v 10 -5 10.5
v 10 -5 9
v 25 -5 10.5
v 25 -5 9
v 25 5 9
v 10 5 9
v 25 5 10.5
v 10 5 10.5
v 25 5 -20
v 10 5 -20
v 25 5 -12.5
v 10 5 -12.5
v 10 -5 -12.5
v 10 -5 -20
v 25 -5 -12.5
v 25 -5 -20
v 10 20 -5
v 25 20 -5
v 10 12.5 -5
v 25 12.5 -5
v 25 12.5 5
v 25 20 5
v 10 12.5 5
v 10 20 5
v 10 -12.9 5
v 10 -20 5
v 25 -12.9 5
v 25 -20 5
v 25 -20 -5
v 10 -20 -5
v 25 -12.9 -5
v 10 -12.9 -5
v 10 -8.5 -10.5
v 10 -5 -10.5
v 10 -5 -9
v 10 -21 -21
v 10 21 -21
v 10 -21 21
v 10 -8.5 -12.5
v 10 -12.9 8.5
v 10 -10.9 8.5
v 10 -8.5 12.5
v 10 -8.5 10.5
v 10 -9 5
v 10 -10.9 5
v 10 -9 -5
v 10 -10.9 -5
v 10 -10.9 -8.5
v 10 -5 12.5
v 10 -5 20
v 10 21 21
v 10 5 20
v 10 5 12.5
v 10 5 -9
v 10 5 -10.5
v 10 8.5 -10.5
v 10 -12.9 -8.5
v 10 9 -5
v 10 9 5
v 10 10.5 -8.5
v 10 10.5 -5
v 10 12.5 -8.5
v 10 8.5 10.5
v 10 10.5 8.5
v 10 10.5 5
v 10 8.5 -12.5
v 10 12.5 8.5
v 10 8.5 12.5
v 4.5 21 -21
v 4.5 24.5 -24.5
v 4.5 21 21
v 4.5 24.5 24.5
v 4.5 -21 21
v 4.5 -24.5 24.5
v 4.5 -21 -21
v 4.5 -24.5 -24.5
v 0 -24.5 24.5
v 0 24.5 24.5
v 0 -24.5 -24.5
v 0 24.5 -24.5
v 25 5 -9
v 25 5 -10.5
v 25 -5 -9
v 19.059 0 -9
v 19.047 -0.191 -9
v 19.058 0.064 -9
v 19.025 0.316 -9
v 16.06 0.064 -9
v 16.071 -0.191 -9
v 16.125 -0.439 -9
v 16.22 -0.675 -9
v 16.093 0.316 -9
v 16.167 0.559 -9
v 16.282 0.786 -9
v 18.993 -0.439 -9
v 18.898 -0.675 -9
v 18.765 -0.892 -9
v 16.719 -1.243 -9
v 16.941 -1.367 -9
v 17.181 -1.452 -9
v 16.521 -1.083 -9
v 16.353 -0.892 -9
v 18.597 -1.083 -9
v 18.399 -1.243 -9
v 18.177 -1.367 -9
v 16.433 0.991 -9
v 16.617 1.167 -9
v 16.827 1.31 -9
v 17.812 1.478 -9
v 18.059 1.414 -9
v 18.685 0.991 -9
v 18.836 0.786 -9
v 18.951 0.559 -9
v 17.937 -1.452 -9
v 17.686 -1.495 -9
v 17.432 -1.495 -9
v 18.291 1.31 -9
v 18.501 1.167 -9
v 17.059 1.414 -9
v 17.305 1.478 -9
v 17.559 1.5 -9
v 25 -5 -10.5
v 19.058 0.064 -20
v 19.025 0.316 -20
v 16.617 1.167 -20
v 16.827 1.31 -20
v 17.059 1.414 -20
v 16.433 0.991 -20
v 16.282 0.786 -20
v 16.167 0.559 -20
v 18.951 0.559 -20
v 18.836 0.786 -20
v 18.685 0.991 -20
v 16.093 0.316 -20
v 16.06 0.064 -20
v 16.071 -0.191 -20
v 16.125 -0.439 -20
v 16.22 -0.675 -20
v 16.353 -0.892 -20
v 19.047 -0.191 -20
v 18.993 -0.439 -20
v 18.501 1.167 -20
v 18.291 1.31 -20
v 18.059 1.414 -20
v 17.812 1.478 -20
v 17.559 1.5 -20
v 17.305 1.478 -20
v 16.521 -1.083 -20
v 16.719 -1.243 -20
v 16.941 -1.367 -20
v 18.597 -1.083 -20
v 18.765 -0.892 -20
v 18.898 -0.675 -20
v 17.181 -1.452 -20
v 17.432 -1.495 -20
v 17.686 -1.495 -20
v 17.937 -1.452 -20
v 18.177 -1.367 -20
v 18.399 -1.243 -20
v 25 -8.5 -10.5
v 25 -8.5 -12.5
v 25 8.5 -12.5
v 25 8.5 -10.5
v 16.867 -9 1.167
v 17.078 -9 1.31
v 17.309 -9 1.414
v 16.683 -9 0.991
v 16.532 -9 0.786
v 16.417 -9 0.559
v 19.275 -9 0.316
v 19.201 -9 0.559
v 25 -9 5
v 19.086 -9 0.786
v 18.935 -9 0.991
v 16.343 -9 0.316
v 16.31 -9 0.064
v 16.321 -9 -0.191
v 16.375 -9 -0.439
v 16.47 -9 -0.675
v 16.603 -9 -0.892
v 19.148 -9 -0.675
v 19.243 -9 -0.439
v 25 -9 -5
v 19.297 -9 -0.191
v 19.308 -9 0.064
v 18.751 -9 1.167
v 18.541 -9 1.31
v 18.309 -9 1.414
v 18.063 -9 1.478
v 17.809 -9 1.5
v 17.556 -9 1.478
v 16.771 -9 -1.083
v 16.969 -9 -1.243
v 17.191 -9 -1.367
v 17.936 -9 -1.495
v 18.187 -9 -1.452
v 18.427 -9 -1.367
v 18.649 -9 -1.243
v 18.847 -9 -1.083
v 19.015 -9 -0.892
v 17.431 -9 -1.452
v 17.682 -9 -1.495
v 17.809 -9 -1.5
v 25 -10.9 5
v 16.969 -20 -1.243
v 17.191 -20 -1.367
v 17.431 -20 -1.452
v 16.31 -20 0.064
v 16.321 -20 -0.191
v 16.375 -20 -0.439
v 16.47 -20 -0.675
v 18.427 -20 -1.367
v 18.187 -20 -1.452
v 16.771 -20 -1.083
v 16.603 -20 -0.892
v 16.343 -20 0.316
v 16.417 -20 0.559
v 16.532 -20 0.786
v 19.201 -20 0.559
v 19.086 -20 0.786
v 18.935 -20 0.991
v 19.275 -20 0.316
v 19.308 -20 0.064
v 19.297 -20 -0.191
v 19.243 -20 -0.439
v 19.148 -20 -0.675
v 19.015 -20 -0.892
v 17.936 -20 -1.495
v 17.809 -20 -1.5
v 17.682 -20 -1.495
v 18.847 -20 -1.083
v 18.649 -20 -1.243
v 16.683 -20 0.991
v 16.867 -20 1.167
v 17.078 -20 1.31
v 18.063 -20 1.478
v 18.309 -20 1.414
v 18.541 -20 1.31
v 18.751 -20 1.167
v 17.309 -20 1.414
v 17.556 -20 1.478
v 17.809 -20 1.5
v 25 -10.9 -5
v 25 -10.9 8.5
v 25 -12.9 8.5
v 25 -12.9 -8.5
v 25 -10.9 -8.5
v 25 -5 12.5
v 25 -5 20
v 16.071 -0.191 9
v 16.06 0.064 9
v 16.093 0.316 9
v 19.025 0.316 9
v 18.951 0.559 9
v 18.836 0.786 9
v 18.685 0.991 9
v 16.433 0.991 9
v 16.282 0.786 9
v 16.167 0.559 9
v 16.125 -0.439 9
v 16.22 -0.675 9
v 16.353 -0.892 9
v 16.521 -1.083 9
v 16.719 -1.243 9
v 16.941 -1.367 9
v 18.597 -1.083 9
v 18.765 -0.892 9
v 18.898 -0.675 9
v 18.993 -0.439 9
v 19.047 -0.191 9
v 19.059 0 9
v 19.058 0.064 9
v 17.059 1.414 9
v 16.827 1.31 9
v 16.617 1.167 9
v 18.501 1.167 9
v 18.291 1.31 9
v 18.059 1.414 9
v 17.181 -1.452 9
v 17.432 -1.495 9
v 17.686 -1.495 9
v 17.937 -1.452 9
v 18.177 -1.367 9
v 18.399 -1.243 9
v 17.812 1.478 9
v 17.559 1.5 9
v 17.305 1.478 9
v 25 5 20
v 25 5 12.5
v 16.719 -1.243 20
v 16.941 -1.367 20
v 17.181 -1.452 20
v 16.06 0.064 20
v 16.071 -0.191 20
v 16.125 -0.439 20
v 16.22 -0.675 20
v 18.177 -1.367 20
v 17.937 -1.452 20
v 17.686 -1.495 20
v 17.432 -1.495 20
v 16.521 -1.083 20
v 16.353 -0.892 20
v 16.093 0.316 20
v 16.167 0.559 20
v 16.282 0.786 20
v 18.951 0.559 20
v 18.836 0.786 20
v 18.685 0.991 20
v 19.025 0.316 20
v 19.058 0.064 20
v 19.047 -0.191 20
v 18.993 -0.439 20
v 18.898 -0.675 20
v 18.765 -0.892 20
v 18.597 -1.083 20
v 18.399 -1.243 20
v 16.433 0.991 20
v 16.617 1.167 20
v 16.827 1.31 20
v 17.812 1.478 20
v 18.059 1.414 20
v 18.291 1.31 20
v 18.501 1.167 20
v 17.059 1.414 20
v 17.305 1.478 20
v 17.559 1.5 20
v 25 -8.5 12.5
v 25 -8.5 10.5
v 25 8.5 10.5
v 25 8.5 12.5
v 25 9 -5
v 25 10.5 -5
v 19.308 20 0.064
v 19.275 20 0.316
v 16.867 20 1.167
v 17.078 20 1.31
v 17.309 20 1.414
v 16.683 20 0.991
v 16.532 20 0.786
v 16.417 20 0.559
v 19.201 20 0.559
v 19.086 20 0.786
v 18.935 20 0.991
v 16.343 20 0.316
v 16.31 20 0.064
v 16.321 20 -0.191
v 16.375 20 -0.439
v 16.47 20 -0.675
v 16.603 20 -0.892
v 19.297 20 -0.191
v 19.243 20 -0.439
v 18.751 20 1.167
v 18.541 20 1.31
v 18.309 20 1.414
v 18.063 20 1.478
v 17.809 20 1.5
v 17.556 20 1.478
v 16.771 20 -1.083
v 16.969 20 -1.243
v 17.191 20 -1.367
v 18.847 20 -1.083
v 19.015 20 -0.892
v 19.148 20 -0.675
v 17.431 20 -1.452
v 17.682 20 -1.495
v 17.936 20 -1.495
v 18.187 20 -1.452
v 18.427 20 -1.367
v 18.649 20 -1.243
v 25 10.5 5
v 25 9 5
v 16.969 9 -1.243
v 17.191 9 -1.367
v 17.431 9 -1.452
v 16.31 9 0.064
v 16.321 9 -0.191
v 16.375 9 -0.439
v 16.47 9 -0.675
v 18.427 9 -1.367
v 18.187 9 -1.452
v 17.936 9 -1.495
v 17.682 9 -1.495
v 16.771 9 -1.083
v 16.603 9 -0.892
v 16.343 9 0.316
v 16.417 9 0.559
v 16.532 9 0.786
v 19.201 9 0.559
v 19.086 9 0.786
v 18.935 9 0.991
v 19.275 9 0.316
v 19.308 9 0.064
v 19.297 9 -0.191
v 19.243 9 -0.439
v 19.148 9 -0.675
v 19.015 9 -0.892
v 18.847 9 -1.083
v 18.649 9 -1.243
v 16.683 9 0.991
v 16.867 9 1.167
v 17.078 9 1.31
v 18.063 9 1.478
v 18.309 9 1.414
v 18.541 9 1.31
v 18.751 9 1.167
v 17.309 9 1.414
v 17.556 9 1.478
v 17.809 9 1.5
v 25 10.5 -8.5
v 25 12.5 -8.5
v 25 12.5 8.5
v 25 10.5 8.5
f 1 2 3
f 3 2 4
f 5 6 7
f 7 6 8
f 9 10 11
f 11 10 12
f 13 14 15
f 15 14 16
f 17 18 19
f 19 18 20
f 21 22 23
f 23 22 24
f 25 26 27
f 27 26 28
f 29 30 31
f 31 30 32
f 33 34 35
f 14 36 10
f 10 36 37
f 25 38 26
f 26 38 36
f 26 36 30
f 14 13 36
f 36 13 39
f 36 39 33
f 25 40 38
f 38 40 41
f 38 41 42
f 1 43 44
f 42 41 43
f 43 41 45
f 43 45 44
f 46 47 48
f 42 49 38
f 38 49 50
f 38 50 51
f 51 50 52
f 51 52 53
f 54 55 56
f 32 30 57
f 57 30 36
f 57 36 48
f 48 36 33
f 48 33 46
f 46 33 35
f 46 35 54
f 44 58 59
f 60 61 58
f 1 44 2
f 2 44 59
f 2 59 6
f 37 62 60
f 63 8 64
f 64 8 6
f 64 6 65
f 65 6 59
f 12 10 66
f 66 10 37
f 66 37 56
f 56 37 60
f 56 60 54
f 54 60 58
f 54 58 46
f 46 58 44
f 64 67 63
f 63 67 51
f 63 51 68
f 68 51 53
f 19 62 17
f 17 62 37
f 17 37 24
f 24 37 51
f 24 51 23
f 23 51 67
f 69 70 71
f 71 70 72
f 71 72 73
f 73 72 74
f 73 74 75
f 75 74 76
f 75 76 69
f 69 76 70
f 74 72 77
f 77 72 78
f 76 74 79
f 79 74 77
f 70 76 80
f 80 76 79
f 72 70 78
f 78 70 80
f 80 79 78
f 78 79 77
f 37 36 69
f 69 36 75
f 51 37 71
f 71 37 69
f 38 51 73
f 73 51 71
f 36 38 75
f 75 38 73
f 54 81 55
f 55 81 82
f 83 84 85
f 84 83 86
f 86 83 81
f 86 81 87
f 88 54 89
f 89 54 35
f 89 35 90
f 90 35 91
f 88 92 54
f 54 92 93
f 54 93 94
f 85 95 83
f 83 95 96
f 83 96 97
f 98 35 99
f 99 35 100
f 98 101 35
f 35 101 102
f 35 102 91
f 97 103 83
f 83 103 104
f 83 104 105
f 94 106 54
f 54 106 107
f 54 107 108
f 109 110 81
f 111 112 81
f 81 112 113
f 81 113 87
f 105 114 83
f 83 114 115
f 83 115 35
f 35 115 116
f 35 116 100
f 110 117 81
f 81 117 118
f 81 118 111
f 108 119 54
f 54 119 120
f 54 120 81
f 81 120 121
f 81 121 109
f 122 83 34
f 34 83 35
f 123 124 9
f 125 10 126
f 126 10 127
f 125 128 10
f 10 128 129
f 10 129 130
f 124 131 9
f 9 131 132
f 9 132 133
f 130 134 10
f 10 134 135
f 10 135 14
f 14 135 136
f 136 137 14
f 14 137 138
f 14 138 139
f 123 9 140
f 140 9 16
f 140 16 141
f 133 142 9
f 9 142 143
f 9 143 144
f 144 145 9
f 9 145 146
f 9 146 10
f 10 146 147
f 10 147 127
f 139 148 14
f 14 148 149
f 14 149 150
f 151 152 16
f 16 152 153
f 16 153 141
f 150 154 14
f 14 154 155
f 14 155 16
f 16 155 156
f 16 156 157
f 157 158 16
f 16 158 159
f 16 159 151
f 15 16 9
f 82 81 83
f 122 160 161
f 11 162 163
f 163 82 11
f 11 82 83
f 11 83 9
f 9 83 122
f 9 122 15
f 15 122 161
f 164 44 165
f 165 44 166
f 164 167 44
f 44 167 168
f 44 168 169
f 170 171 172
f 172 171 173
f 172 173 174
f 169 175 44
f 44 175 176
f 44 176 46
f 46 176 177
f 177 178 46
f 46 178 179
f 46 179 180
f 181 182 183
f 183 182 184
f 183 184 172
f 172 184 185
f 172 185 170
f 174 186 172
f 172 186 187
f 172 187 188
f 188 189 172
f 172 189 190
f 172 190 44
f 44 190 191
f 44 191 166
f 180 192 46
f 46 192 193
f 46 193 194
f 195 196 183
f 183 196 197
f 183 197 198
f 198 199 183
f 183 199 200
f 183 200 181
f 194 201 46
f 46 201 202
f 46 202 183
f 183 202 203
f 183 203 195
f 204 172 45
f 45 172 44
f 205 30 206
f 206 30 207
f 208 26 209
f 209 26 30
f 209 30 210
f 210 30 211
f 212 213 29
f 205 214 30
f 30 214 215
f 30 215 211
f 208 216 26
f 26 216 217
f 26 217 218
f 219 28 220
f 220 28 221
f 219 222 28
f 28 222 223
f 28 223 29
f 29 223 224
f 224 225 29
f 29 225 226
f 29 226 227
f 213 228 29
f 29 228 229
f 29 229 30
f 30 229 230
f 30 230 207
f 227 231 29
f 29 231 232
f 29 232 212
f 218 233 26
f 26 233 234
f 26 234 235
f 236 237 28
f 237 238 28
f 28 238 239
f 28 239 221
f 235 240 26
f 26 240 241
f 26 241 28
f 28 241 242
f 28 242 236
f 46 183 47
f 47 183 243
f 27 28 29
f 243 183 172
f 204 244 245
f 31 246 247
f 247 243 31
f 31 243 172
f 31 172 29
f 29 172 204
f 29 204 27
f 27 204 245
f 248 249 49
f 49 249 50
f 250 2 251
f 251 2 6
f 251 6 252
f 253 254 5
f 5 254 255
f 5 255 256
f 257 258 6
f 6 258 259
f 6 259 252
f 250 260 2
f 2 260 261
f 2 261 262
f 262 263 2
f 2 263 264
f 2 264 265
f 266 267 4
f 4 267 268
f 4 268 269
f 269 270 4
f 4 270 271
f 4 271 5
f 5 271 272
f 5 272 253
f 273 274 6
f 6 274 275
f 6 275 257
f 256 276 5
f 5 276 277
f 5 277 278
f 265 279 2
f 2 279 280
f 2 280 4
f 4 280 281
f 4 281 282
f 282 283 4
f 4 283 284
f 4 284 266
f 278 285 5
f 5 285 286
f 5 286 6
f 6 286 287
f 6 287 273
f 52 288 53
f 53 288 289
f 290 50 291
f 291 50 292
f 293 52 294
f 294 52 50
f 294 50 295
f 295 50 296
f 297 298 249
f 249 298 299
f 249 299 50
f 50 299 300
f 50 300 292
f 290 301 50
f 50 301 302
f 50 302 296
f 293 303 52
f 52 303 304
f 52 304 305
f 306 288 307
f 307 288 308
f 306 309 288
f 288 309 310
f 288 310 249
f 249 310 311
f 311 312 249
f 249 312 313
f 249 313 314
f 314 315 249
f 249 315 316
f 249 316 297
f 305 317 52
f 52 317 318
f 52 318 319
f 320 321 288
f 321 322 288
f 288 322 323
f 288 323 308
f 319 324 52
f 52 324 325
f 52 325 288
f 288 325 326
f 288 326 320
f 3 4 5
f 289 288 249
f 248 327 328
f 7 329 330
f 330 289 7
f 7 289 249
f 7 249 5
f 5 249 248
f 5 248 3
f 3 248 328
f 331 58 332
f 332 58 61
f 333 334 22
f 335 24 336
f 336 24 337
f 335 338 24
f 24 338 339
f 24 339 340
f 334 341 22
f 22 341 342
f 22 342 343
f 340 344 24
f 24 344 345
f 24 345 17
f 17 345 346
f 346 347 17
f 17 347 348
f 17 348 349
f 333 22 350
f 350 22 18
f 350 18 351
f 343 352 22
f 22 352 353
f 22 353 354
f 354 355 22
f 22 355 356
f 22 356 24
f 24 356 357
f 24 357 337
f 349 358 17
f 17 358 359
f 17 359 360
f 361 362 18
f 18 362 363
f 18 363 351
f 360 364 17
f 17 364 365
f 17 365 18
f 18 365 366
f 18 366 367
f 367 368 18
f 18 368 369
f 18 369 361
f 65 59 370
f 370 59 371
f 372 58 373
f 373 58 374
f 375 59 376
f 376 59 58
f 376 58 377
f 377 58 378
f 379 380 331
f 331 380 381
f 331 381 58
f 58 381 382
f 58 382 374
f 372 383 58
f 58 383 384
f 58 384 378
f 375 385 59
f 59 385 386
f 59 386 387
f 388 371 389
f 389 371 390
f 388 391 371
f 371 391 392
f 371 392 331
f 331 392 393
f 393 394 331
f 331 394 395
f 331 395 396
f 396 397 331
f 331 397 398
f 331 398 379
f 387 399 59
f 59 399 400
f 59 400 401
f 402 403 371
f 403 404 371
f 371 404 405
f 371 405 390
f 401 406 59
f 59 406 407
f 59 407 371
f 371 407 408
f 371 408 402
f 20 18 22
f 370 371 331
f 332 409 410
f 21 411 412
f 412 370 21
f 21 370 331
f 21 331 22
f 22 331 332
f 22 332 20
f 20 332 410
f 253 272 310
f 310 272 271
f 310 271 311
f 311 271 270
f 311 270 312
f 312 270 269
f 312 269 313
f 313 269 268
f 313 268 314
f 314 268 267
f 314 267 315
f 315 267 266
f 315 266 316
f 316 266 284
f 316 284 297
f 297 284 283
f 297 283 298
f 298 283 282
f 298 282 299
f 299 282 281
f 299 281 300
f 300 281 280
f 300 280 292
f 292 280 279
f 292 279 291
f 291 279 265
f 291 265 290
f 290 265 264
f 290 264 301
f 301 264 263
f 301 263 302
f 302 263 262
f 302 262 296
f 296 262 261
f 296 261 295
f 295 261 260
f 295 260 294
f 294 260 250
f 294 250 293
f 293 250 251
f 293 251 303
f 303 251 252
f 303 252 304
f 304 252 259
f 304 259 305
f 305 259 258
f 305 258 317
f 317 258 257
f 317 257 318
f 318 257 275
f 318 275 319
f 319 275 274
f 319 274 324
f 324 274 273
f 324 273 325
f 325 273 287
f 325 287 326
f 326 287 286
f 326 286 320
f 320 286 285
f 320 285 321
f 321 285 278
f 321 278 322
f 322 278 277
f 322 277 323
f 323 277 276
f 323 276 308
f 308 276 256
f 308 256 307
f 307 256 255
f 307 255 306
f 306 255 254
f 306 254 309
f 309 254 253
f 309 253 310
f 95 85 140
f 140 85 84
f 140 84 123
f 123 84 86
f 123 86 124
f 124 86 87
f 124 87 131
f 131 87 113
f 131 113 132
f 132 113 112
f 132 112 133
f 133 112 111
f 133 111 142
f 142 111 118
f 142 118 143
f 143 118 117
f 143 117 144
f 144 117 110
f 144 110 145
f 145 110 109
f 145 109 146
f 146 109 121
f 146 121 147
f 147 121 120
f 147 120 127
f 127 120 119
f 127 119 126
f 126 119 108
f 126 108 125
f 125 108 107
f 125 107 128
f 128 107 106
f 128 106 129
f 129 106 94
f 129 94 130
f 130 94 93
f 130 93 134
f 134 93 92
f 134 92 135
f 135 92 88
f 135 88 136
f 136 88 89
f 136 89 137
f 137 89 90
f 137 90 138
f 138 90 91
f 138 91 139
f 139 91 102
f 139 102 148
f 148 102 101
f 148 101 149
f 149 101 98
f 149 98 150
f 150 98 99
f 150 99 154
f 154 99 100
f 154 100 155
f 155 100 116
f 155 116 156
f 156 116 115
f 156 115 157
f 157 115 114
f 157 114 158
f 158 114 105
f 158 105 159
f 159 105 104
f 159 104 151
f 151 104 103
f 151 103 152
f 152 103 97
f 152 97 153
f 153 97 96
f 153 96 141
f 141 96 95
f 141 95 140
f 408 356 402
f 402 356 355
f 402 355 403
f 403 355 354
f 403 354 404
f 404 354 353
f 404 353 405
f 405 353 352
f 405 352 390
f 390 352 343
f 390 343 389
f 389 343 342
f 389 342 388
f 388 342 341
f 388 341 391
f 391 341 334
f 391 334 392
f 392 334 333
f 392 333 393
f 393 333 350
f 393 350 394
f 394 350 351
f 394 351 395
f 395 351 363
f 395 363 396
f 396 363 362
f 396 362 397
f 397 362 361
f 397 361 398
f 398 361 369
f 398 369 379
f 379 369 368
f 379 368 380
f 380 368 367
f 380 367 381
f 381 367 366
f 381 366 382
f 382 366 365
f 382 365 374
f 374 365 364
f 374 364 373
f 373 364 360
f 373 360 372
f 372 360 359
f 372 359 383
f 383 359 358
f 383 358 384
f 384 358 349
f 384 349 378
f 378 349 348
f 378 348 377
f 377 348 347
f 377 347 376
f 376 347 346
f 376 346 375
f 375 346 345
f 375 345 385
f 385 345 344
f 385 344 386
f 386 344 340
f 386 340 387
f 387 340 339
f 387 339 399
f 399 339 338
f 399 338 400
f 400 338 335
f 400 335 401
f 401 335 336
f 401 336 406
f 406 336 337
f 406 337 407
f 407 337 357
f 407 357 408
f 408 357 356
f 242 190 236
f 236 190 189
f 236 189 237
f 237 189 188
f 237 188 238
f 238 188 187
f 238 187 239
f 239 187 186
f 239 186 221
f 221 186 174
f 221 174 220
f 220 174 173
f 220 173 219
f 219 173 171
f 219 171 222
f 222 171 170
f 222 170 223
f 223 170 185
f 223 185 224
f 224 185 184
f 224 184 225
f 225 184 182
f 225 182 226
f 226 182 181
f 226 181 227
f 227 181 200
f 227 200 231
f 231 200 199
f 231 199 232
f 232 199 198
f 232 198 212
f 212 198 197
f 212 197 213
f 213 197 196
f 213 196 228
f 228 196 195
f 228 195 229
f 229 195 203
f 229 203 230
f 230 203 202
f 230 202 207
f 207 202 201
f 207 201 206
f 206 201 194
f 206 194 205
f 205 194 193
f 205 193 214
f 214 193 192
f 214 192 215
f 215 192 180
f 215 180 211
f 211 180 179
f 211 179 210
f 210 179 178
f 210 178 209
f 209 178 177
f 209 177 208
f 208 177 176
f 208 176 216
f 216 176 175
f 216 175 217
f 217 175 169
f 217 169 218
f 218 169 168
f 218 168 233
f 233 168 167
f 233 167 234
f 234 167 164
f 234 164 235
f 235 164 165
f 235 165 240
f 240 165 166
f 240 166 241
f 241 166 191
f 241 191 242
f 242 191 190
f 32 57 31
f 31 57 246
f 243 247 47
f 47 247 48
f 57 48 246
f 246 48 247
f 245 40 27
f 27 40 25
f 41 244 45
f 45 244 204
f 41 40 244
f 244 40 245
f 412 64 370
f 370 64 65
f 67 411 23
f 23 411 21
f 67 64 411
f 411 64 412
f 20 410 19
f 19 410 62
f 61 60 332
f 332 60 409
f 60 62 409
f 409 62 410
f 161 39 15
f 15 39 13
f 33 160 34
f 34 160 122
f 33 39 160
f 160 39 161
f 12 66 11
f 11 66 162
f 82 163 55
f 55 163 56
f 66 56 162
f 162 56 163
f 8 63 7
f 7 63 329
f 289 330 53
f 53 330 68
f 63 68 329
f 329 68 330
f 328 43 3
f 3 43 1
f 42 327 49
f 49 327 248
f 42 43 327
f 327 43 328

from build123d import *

# Parameters (mm, degrees)
SKETCH1_W                 = 49
SKETCH1_H                 = 49
BOSS_EXTRUDE1_DEPTH       = 4.5
SKETCH3_W                 = 42
SKETCH3_H                 = 42
BOSS_EXTRUDE3_DEPTH       = 5.5
SKETCH4_W                 = 11
SKETCH4_H                 = 10
SKETCH4_W_2               = 10
SKETCH4_H_2               = 11
BOSS_EXTRUDE5_DEPTH       = 15
F_3_0MM_DOWEL_SLOT1_D     = 3
F_3_0MM_DOWEL_SLOT2_D     = 3
SKETCH15_W                = 15
SKETCH15_H                = 2
BOSS_EXTRUDE7_DEPTH       = 3.5
BOSS_EXTRUDE7_DEPTH_BACK  = 13.5
F_3_0MM_DOWEL_SLOT3_D     = 3
SKETCH18_W                = 15
SKETCH18_H                = 2
BOSS_EXTRUDE8_DEPTH       = 3.5
BOSS_EXTRUDE8_DEPTH_BACK  = 13.5
F_3_0MM_DOWEL_SLOT5_D     = 3
SKETCH23_W                = 15
SKETCH23_H                = 2
BOSS_EXTRUDE9_DEPTH       = 3.5
BOSS_EXTRUDE9_DEPTH_BACK  = 13.5
SKETCH24_W                = 15
SKETCH24_H                = 2
BOSS_EXTRUDE10_DEPTH      = 3.5
BOSS_EXTRUDE10_DEPTH_BACK = 13.5
F_3_0MM_DOWEL_SLOT6_D     = 3


with BuildPart() as part:
    # Sketch1 → Boss-Extrude1 (new body)
    with BuildSketch(Plane(origin=(0, 0, 0), x_dir=(0, 0, -1), z_dir=(1, 0, 0))):
        Rectangle(SKETCH1_W, SKETCH1_H)
    extrude(amount=BOSS_EXTRUDE1_DEPTH)

    # Sketch3 → Boss-Extrude3 (add)
    with BuildSketch(Plane(origin=(4.5, 0, 0), x_dir=(0, 0, -1), z_dir=(1, 0, 0))):
        Rectangle(SKETCH3_W, SKETCH3_H)
    extrude(amount=BOSS_EXTRUDE3_DEPTH)

    # Sketch4 → Boss-Extrude5 (add)
    with BuildSketch(Plane(origin=(10, 0, 0), x_dir=(0, 0, -1), z_dir=(1, 0, 0))):
        with Locations((14.5, 0)):
            Rectangle(SKETCH4_W, SKETCH4_H)
        with Locations((0, -14.5)):
            Rectangle(SKETCH4_W_2, SKETCH4_H_2)
        with Locations((-14.5, 0)):
            Rectangle(SKETCH4_W, SKETCH4_H)
        with Locations((0, 14.5)):
            Rectangle(SKETCH4_W_2, SKETCH4_H_2)
    extrude(amount=BOSS_EXTRUDE5_DEPTH)

    # Ø3.0mm Dowel Slot1 (through all)
    with Locations(Plane(origin=(0, 0, -20), x_dir=(-1, 0, 0), z_dir=(0, 0, -1))):
        with Locations((-17.558984138, 0)):
            Hole(F_3_0MM_DOWEL_SLOT1_D / 2)

    # Ø3.0mm Dowel Slot2 (through all)
    with Locations(Plane(origin=(0, 20, 0), x_dir=(1, 0, 0), z_dir=(0, 1, 0))):
        with Locations((17.80910446, 0)):
            Hole(F_3_0MM_DOWEL_SLOT2_D / 2)

    # Sketch15 → Boss-Extrude7 (add, two sides)
    with BuildSketch(Plane.XY.offset(5)) as boss_extrude7_sk:
        with Locations((17.5, -11.9)):
            Rectangle(SKETCH15_W, SKETCH15_H)
    extrude(amount=BOSS_EXTRUDE7_DEPTH)
    extrude(boss_extrude7_sk.sketch, amount=-BOSS_EXTRUDE7_DEPTH_BACK)

    # Ø3.0mm Dowel Slot3 (through all)
    with Locations(Plane(origin=(17.80910446, -20, 0), x_dir=(0, 0, -1), z_dir=(0, -1, 0))):
        with Locations((0, 0)):
            Hole(F_3_0MM_DOWEL_SLOT3_D / 2)

    # Sketch18 → Boss-Extrude8 (add, two sides)
    with BuildSketch(Plane(origin=(0, 0, -5), x_dir=(-1, 0, 0), z_dir=(0, 0, -1))) as boss_extrude8_sk:
        with Locations((-17.5, 11.5)):
            Rectangle(SKETCH18_W, SKETCH18_H)
    extrude(amount=BOSS_EXTRUDE8_DEPTH)
    extrude(boss_extrude8_sk.sketch, amount=-BOSS_EXTRUDE8_DEPTH_BACK)

    # Ø3.0mm Dowel Slot5 (through all)
    with Locations(Plane(origin=(0, 20, 0), x_dir=(1, 0, 0), z_dir=(0, 1, 0))):
        with Locations((17.80910446, 0)):
            Hole(F_3_0MM_DOWEL_SLOT5_D / 2)

    # Sketch23 → Boss-Extrude9 (add, two sides)
    with BuildSketch(Plane.XZ.offset(5)) as boss_extrude9_sk:
        with Locations((17.5, -11.5)):
            Rectangle(SKETCH23_W, SKETCH23_H)
    extrude(amount=BOSS_EXTRUDE9_DEPTH)
    extrude(boss_extrude9_sk.sketch, amount=-BOSS_EXTRUDE9_DEPTH_BACK)

    # Sketch24 → Boss-Extrude10 (add, two sides)
    with BuildSketch(Plane.XZ.offset(5)) as boss_extrude10_sk:
        with Locations((17.5, 11.5)):
            Rectangle(SKETCH24_W, SKETCH24_H)
    extrude(amount=BOSS_EXTRUDE10_DEPTH)
    extrude(boss_extrude10_sk.sketch, amount=-BOSS_EXTRUDE10_DEPTH_BACK)

    # Ø3.0mm Dowel Slot6 (through all)
    with Locations(Plane.XY.offset(20)):
        with Locations((17.558984138, 0)):
            Hole(F_3_0MM_DOWEL_SLOT6_D / 2)


solid = part.part
